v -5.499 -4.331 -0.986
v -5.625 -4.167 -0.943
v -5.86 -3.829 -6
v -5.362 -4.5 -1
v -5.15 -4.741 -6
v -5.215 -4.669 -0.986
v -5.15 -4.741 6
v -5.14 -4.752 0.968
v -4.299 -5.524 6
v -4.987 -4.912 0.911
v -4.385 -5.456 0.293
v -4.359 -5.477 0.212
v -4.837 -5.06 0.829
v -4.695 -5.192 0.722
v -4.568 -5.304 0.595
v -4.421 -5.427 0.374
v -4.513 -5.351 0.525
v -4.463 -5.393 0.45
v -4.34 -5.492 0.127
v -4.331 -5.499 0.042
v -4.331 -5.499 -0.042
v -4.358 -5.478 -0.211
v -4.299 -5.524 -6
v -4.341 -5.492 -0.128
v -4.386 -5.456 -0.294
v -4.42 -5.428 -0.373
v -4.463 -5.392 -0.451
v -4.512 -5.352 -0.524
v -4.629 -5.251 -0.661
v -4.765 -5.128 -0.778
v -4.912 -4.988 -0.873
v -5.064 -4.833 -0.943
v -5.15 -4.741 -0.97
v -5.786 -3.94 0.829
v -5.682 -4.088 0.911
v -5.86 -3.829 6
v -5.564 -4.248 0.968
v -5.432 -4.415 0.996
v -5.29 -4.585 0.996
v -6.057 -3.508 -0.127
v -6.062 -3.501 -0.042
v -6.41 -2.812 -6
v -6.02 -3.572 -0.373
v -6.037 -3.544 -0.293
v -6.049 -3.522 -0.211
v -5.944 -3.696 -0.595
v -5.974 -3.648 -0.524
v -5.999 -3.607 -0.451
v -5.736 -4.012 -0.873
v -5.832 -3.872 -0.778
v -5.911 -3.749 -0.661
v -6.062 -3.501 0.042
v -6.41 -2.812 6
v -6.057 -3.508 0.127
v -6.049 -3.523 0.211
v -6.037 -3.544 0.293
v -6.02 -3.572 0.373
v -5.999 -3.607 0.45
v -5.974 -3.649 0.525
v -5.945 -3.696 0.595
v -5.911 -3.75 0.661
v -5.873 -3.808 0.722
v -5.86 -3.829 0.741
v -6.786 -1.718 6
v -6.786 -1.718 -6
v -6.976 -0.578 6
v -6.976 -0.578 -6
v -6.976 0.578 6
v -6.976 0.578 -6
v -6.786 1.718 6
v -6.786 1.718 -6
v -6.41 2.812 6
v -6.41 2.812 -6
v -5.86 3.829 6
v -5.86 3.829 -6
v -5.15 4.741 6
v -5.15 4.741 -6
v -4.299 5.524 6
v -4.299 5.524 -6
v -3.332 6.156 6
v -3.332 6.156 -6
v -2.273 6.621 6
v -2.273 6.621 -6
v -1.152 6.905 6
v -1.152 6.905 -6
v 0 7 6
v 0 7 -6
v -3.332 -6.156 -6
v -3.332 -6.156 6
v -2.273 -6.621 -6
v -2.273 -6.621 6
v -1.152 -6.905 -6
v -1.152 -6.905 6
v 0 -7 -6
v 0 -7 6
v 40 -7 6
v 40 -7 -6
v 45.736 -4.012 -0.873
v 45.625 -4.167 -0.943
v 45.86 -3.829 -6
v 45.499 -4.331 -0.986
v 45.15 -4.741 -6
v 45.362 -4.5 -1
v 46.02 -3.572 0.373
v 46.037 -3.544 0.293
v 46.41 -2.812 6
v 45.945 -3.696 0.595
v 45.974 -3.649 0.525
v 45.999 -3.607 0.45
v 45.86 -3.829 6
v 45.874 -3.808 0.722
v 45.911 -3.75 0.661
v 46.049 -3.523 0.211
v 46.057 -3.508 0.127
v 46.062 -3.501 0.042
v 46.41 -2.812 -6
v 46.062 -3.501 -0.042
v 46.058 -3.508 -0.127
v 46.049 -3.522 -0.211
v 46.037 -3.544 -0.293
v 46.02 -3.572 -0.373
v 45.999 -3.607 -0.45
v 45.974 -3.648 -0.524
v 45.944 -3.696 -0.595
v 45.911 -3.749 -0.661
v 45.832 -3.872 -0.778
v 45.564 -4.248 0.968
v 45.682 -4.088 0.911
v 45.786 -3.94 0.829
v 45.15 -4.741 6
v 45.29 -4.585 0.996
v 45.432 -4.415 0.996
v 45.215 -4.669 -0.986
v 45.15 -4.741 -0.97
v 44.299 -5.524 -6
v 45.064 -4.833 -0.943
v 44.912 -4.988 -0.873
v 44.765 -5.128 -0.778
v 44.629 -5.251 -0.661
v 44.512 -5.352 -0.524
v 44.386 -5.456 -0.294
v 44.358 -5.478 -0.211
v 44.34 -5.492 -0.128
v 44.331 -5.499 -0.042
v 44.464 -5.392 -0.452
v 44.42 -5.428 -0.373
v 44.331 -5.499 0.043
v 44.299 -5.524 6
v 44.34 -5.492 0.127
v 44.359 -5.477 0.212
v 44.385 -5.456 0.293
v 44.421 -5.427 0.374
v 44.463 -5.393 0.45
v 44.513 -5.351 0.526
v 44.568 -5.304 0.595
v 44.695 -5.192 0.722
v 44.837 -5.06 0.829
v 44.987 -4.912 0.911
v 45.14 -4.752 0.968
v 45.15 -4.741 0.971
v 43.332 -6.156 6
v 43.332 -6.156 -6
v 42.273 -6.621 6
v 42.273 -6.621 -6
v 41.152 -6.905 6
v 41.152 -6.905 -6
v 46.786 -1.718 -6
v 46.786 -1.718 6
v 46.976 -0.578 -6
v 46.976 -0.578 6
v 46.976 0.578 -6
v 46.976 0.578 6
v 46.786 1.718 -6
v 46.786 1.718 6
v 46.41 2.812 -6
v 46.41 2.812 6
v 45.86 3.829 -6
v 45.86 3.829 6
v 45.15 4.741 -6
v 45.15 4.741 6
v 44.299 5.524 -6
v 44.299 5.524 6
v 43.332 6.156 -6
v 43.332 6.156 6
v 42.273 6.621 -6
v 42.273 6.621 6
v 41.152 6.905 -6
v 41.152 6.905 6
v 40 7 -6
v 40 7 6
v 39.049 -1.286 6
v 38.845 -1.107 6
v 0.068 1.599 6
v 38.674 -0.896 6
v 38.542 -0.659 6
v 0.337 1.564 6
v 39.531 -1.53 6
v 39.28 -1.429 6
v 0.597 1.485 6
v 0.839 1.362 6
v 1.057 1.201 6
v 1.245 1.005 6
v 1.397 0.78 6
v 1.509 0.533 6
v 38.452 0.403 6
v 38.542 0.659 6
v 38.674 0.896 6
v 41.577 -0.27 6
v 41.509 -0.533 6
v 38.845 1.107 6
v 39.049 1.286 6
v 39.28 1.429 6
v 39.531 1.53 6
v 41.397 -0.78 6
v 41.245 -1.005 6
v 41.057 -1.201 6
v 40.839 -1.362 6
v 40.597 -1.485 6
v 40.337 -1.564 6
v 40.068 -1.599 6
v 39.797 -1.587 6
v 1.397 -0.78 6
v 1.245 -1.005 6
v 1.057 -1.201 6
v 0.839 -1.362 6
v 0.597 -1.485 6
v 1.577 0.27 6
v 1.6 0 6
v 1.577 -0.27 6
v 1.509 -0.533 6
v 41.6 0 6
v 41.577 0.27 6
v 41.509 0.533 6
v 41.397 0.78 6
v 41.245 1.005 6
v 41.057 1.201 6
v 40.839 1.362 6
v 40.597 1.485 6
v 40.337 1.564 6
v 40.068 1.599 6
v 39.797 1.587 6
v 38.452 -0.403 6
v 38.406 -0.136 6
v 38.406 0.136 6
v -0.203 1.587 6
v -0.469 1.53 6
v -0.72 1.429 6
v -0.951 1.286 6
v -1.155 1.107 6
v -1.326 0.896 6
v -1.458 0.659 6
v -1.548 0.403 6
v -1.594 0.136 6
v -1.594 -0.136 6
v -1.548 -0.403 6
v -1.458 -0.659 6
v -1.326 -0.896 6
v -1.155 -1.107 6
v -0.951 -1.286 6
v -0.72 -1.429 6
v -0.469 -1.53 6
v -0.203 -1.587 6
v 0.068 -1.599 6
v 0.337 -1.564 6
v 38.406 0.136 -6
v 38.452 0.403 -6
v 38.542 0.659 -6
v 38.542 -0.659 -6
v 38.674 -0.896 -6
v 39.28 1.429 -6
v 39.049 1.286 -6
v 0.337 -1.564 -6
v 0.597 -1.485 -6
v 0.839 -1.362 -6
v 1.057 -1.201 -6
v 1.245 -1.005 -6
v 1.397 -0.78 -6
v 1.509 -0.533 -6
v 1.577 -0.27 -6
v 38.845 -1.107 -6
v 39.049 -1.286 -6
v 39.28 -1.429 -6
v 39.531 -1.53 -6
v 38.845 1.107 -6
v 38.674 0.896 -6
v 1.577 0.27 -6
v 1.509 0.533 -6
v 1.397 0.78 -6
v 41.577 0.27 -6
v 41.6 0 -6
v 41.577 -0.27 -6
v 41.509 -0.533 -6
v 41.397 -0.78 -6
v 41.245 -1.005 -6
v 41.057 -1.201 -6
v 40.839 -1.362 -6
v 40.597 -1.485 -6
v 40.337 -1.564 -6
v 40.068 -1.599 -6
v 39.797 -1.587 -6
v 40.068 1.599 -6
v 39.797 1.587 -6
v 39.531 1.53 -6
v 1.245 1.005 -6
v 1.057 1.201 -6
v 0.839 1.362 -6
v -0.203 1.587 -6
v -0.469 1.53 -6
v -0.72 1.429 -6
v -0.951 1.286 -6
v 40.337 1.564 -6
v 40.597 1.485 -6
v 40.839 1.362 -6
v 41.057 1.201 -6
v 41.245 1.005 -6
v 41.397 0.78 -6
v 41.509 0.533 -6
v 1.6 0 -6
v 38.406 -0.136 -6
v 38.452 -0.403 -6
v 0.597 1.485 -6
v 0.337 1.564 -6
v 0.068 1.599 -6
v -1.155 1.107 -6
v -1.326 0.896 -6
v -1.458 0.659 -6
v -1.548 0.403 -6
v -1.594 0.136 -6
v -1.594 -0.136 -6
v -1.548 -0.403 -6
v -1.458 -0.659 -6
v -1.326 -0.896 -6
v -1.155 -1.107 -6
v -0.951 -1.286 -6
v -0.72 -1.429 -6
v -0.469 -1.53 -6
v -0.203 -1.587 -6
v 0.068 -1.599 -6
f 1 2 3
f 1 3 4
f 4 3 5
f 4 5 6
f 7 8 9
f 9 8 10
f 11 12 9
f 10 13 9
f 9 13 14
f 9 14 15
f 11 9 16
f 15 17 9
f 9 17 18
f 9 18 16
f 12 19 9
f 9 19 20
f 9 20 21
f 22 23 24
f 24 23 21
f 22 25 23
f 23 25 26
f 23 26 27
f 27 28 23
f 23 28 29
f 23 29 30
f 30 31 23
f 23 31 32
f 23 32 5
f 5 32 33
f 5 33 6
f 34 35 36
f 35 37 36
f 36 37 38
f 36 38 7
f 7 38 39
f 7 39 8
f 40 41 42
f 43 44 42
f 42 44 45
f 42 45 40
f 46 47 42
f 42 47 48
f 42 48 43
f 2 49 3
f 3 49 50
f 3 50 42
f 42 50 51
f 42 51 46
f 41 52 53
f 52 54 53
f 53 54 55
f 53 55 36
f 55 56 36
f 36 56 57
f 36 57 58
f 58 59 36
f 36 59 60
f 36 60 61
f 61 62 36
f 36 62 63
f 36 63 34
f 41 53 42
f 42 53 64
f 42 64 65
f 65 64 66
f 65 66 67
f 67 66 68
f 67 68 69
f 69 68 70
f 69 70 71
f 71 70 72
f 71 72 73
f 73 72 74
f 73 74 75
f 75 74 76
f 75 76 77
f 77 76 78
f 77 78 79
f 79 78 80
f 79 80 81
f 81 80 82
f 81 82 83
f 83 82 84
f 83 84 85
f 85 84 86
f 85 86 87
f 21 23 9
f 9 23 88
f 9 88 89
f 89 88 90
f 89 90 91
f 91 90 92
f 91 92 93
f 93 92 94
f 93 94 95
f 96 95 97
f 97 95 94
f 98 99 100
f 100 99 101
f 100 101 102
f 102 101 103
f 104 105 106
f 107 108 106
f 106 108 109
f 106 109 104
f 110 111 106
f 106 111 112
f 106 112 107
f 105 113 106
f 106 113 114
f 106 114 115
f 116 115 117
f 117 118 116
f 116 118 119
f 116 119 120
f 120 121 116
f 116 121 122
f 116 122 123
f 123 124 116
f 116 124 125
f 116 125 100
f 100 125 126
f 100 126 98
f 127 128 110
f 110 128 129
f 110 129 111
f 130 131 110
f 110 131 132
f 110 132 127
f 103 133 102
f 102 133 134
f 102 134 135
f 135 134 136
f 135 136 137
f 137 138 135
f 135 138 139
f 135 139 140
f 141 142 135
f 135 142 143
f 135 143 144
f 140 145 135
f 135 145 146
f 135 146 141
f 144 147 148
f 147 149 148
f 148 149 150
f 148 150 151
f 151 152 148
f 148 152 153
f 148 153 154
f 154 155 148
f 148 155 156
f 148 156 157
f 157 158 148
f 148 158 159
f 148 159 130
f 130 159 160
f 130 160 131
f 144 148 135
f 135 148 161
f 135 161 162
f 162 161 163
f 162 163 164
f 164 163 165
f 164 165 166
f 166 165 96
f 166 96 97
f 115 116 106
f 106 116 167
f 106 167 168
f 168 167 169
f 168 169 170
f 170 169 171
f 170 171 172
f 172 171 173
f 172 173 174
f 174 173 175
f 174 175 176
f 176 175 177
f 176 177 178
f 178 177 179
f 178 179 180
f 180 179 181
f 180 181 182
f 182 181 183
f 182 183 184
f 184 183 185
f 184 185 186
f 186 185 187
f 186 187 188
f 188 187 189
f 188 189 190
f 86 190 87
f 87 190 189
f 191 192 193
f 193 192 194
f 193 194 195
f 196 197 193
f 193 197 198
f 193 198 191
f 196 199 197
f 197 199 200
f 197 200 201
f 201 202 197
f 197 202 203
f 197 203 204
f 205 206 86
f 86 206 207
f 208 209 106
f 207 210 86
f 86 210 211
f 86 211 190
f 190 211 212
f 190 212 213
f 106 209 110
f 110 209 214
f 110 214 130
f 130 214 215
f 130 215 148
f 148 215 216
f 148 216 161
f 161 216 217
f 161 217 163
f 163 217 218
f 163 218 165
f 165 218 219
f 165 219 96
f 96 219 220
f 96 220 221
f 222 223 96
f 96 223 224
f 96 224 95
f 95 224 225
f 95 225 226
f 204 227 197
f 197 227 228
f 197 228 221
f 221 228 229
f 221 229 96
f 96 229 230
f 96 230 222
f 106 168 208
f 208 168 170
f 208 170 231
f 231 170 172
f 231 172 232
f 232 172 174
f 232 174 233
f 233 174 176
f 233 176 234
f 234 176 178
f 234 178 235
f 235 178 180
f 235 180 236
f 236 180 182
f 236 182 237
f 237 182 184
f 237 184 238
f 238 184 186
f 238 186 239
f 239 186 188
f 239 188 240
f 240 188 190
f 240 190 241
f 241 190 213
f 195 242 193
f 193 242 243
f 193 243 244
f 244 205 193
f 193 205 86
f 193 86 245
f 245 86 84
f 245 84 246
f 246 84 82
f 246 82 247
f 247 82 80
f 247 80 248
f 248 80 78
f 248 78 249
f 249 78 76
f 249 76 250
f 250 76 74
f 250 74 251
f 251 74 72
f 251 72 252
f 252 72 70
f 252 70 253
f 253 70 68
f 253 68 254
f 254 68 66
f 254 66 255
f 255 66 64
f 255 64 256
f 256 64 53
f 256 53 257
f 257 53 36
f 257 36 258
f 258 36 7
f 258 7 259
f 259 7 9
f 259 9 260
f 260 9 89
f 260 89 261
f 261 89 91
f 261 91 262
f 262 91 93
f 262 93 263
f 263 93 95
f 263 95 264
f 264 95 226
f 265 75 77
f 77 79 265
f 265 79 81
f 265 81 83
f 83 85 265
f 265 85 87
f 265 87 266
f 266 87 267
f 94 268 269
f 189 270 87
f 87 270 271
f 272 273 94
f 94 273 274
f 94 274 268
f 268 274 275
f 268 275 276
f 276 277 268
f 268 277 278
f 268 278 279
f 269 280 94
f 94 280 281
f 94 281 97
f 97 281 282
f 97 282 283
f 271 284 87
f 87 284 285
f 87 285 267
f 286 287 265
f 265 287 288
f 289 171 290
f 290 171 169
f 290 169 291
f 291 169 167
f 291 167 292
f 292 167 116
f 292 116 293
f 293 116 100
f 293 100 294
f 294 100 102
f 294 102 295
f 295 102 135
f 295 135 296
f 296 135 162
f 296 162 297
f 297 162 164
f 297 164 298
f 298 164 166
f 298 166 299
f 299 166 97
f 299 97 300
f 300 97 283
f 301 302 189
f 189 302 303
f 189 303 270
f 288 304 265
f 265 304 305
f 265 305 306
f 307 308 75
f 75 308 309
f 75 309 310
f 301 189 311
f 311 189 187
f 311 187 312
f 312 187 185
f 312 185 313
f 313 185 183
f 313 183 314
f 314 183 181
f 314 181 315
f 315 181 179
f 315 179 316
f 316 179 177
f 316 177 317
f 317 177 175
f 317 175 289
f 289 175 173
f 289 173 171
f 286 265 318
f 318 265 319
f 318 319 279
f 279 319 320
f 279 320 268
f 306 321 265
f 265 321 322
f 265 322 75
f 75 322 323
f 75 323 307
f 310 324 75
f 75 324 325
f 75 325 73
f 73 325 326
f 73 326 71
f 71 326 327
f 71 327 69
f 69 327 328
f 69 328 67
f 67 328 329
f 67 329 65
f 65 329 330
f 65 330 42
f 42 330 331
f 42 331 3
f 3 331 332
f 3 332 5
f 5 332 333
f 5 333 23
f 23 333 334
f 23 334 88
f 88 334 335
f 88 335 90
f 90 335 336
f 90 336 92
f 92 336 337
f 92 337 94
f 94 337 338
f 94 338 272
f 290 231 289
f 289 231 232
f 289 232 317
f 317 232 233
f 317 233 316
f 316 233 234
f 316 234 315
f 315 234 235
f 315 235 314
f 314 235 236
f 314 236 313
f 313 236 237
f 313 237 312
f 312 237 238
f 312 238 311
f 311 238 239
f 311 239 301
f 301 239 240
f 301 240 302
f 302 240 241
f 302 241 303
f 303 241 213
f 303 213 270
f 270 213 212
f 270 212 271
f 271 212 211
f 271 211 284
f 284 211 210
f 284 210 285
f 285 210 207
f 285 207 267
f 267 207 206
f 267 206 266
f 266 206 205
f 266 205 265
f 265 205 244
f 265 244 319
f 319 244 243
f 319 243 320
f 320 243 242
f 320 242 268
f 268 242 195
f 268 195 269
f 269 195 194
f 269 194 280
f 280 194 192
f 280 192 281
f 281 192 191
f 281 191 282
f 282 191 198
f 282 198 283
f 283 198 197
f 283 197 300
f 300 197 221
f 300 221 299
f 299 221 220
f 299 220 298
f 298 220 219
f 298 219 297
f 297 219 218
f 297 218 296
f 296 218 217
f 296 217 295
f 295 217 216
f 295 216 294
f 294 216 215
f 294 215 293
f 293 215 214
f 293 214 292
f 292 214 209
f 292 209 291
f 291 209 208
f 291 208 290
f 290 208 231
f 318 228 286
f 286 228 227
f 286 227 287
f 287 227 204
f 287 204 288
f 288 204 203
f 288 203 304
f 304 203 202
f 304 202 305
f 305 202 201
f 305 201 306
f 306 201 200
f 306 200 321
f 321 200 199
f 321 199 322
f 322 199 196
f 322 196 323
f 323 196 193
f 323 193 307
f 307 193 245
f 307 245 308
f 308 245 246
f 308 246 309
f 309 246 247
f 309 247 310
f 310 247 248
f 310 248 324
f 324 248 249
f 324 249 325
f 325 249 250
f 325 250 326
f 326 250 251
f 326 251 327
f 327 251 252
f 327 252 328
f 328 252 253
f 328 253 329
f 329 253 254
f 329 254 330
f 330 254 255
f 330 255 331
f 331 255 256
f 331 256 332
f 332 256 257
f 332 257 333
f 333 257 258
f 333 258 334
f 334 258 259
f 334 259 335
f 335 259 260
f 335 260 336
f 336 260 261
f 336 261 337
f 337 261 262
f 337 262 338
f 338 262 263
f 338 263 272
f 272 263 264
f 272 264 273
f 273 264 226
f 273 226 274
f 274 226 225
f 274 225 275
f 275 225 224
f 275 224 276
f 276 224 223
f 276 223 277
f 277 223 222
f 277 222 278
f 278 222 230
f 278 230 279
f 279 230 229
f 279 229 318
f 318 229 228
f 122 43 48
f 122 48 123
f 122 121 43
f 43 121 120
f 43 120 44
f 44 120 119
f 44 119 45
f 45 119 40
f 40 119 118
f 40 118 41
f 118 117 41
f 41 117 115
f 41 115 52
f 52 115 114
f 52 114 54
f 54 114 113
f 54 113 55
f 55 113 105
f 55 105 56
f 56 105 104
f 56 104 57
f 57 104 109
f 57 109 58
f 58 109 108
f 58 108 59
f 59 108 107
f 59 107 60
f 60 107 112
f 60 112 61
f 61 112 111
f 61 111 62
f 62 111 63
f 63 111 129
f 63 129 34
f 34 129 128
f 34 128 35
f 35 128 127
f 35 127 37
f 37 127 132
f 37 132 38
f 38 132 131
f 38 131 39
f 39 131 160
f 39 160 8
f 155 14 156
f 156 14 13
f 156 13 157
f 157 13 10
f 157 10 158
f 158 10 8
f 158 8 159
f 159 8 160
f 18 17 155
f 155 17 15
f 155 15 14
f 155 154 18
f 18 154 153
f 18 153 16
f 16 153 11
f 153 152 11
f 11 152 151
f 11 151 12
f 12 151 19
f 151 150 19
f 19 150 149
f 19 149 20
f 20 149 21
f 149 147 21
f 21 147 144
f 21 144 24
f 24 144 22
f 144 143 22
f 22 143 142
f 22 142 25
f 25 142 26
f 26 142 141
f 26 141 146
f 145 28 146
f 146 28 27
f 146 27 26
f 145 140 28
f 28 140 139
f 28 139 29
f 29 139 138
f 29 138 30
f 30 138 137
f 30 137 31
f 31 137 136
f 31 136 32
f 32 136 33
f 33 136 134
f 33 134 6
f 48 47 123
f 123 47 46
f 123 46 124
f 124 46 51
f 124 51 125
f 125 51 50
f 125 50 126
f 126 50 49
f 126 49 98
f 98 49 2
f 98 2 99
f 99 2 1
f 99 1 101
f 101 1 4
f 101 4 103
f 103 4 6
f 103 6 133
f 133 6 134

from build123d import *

# Parameters (mm, degrees)
BOSS_EXTRUDE1_DEPTH = 6
SKETCH2_R           = 1.6
CUT_EXTRUDE1_DEPTH  = 50.010203019
SKETCH3_R           = 1
CUT_EXTRUDE2_DEPTH  = 60


with BuildPart() as part:
    # Sketch1 → Boss-Extrude1 (new, symmetric)
    with BuildSketch(Plane.XY):
        with BuildLine():
            Line((0, 7), (40, 7))
            ThreePointArc((40, 7), (47, 0), (40, -7))
            Line((40, -7), (0, -7))
            ThreePointArc((0, -7), (-7, 0), (0, 7))
        make_face()
    extrude(amount=BOSS_EXTRUDE1_DEPTH, both=True)

    # Sketch2 → Cut-Extrude1 (cut, through all)
    with BuildSketch(Plane.XY.offset(6)):
        Circle(SKETCH2_R)
        with Locations((40, 0)):
            Circle(SKETCH2_R)
    extrude(amount=-CUT_EXTRUDE1_DEPTH, mode=Mode.SUBTRACT)

    # Sketch3 → Cut-Extrude2 (cut, symmetric)
    with BuildSketch(Plane(origin=(0, 0, 0), x_dir=(0, 0, -1), z_dir=(1, 0, 0))):
        with Locations((0, -4.5)):
            Circle(SKETCH3_R)
    extrude(amount=CUT_EXTRUDE2_DEPTH, both=True, mode=Mode.SUBTRACT)


solid = part.part
